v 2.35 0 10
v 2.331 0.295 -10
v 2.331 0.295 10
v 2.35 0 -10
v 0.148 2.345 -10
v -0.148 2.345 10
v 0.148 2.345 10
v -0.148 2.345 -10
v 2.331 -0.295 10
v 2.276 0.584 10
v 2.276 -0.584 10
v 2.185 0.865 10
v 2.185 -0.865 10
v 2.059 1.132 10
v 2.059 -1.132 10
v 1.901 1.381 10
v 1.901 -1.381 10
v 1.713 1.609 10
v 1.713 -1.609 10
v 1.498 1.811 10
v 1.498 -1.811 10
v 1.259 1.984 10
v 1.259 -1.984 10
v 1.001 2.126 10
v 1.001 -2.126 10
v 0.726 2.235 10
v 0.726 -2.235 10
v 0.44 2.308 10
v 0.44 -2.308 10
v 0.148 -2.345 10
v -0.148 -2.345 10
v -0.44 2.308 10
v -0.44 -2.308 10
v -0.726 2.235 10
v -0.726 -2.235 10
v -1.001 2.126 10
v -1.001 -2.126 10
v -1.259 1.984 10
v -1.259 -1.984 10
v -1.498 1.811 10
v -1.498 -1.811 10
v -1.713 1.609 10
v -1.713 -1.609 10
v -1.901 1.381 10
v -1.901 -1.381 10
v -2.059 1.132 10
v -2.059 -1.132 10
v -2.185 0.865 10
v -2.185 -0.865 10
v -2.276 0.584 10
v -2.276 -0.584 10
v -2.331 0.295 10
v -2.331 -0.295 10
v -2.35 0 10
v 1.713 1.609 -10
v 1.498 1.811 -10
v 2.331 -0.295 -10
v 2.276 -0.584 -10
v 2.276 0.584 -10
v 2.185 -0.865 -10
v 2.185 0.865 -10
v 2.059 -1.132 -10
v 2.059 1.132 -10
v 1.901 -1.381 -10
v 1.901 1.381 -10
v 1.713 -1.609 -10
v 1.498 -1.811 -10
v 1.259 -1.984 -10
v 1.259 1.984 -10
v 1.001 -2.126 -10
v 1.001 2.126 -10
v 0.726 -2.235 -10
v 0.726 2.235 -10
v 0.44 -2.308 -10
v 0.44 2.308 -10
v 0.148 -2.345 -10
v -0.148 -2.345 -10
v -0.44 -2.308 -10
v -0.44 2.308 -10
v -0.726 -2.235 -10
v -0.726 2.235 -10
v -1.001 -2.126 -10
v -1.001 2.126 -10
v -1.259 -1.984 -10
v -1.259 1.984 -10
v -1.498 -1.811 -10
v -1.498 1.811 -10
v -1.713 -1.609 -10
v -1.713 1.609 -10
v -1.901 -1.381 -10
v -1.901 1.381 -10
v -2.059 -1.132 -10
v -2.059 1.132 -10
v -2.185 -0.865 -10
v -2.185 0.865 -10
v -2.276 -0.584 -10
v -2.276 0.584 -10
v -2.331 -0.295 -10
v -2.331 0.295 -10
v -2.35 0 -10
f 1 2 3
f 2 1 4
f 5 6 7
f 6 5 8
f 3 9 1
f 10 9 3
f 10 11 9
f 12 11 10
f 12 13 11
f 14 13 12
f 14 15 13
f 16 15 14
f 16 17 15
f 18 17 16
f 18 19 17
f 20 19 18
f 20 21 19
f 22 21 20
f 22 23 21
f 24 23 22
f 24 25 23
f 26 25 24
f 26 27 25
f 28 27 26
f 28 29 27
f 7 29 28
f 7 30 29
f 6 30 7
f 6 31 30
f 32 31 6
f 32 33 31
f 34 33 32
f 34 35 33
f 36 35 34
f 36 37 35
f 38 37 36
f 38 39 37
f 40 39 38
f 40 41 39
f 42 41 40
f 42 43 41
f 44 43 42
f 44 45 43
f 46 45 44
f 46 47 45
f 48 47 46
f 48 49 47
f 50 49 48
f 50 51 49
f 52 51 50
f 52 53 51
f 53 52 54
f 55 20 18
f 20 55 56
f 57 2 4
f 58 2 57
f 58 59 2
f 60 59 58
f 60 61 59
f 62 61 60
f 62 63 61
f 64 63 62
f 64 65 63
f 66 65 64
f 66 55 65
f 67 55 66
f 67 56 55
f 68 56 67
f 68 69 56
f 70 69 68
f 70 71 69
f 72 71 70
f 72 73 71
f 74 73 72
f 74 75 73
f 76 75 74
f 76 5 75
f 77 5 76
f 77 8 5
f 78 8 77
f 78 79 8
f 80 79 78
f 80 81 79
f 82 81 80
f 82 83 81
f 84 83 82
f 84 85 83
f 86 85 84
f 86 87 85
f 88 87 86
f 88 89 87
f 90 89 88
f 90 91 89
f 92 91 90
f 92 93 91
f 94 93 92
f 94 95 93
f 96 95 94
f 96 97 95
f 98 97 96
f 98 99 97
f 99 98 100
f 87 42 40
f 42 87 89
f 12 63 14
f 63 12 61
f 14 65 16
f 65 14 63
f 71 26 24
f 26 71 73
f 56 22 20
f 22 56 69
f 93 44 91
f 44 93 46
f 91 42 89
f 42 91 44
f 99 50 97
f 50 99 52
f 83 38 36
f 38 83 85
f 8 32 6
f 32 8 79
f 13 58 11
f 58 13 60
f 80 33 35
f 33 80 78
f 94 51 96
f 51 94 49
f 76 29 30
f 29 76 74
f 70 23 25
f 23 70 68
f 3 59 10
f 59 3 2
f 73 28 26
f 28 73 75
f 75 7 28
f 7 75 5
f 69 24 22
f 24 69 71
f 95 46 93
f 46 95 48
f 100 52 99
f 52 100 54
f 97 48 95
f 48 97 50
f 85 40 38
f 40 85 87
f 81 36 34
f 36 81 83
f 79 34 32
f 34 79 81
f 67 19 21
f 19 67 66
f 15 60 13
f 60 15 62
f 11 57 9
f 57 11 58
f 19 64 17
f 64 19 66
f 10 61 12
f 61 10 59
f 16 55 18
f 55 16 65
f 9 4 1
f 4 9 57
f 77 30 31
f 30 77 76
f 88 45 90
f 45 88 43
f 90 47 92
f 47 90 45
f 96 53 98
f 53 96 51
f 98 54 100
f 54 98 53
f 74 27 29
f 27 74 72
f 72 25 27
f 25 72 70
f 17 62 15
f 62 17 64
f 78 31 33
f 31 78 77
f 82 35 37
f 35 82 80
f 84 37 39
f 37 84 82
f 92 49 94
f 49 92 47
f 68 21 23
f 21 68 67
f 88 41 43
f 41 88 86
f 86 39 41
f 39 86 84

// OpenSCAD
$fn = 50;


difference() {
	union() {
		translate(v = [0, 0, -10.0000000000]) {
			cylinder(h = 20, r = 2.3500000000);
		}
	}
	union() {
		translate(v = [0, 0, -100.0000000000]) {
			cylinder(h = 200, r = 0);
		}
	}
}
